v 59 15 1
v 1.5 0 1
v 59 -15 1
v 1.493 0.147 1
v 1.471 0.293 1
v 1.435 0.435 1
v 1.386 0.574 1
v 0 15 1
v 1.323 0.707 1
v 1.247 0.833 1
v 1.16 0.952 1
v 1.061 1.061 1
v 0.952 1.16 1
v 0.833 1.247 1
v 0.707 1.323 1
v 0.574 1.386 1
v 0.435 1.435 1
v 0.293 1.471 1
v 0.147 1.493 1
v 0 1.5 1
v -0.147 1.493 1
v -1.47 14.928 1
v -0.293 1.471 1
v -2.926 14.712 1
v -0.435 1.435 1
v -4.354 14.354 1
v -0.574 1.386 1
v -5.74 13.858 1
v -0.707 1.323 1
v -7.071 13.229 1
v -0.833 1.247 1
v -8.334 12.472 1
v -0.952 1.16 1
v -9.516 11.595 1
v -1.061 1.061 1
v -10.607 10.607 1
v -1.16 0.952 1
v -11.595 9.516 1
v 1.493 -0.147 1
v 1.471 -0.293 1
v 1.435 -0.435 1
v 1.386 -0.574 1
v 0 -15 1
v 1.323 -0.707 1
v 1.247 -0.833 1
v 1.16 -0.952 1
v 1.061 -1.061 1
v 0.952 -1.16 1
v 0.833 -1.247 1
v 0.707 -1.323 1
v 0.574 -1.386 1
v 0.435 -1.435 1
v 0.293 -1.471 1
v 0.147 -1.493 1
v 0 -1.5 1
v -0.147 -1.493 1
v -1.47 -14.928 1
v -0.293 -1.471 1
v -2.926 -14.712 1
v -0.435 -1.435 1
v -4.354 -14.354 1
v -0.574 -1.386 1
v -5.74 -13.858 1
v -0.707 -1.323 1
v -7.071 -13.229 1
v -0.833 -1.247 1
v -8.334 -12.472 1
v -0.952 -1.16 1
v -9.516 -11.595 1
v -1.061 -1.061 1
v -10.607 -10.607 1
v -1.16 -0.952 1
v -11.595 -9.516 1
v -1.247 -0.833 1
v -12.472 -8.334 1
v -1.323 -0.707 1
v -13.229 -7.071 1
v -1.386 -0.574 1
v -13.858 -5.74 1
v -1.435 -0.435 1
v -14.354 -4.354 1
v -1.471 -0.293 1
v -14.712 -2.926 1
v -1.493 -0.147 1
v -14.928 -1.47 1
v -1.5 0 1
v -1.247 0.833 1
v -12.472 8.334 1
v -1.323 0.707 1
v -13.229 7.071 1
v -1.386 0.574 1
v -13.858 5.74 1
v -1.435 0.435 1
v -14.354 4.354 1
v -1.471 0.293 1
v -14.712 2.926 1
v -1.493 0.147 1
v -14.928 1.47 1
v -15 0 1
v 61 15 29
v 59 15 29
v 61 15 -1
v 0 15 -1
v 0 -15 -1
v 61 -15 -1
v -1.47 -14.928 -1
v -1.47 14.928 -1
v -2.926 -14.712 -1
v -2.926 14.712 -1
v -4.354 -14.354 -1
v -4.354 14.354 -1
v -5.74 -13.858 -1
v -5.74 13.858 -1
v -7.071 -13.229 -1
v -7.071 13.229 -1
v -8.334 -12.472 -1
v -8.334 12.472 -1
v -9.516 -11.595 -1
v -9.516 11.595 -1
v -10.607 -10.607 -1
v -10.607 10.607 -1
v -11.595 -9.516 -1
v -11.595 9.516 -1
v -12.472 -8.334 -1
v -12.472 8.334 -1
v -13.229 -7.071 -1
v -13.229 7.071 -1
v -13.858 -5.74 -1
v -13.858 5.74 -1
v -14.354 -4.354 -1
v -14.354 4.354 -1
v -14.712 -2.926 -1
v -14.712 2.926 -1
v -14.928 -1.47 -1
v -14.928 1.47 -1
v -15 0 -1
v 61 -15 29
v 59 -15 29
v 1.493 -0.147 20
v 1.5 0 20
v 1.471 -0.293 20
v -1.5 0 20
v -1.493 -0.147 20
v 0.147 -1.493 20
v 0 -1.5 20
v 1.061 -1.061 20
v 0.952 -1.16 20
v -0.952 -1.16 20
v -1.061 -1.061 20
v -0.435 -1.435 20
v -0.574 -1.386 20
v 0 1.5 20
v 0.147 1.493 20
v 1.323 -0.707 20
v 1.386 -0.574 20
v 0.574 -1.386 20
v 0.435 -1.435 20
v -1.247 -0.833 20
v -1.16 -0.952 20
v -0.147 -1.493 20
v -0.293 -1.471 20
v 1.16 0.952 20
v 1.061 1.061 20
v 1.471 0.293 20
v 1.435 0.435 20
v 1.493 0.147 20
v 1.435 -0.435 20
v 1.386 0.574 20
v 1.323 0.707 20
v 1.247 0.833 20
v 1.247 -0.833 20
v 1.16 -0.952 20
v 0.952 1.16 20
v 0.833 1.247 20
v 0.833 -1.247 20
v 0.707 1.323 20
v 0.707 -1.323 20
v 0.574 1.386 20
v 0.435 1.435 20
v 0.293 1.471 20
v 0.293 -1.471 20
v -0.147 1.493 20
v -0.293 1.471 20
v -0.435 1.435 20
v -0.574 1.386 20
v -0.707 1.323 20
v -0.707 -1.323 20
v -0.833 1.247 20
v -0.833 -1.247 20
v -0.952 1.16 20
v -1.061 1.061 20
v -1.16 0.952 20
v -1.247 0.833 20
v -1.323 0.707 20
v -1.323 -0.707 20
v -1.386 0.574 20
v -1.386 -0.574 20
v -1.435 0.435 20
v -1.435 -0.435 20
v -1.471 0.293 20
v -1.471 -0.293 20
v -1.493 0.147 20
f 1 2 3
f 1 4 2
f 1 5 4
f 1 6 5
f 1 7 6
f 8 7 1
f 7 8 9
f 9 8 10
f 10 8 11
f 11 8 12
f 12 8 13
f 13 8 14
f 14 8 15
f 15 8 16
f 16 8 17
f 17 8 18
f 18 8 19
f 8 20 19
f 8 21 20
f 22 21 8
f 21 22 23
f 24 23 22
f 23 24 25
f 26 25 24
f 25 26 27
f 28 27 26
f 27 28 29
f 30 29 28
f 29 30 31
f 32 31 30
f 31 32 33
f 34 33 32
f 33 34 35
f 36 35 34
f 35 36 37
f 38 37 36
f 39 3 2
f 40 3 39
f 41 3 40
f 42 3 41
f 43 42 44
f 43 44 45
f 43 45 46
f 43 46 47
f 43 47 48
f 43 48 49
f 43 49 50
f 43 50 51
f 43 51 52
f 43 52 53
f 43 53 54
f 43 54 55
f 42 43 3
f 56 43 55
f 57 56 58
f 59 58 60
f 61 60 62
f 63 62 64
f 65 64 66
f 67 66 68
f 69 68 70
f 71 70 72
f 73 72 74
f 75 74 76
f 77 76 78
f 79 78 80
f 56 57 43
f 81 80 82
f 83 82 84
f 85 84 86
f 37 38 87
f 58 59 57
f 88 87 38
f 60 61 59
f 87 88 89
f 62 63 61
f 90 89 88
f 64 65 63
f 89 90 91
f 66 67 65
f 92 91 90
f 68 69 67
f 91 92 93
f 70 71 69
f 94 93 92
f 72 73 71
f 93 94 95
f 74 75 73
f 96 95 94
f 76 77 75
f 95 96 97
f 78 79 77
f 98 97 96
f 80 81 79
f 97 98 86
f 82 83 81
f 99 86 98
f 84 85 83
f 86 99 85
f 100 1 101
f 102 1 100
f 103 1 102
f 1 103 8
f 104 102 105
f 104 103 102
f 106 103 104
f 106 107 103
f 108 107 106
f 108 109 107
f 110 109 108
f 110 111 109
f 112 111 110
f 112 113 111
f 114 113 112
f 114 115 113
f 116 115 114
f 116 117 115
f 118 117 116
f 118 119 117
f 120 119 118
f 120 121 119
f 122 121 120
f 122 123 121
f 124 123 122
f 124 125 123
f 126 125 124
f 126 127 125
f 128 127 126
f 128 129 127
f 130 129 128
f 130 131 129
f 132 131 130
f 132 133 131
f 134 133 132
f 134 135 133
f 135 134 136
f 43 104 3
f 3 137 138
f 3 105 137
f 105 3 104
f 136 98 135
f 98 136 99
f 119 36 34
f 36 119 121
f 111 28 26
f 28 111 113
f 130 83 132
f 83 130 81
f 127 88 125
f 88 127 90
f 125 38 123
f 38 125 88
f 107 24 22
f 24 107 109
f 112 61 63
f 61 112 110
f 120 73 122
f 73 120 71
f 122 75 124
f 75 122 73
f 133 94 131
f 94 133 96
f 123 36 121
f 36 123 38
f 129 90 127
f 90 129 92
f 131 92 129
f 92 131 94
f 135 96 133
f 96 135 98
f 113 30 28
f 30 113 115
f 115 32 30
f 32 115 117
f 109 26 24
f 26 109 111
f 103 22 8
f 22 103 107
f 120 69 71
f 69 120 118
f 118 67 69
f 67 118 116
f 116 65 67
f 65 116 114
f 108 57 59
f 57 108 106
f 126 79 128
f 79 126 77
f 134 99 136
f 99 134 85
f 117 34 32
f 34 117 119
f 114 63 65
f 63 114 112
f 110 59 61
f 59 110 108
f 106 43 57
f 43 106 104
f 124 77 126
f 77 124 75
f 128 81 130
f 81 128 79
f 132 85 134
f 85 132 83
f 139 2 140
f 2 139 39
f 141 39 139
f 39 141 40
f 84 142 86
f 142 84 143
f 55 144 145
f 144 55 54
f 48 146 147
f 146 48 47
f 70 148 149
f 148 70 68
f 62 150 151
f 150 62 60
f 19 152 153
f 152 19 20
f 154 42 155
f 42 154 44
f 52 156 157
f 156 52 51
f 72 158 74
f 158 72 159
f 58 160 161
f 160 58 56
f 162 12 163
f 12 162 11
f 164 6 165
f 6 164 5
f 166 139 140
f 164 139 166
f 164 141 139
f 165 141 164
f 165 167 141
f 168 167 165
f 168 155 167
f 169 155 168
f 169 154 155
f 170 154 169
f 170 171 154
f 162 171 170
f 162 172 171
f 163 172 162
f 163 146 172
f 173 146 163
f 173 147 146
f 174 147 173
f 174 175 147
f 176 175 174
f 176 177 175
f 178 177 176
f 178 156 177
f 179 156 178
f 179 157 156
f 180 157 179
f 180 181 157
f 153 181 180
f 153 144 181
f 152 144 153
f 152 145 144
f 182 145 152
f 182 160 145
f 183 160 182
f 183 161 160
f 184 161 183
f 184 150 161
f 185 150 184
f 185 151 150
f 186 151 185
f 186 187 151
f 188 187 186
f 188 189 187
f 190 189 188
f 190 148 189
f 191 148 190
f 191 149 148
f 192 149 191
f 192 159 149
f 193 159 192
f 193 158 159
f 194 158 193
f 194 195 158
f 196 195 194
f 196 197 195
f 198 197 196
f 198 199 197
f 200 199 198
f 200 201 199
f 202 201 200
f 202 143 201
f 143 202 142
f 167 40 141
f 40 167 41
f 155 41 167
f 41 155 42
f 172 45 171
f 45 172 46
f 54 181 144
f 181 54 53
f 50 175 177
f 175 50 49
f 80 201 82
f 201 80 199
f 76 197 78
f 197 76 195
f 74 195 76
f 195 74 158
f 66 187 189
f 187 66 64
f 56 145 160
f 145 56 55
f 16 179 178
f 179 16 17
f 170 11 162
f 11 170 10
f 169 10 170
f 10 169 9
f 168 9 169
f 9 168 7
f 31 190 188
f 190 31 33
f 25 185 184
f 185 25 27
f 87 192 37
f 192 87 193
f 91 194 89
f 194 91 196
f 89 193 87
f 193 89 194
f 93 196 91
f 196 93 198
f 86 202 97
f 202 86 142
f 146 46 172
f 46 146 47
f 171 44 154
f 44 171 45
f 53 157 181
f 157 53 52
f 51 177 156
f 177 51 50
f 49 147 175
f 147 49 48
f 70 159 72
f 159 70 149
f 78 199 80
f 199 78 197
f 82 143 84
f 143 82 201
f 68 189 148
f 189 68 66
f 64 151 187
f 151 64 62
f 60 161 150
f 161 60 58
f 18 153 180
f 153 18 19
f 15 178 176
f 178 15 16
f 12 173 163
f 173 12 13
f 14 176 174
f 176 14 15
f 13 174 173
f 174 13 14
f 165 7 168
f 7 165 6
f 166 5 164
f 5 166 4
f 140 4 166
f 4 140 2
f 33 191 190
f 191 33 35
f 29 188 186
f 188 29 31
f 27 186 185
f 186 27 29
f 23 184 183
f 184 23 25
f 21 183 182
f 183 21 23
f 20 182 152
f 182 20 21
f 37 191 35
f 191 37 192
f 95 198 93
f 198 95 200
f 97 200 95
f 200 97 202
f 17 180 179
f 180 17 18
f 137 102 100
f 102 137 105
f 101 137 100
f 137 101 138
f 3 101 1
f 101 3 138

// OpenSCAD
$fn =  64;
module pole_3m(){
    rotate([90,0,0]){
cylinder(h=20,d = 3, center = true);}
translate([0,0,1]){
}
}

module triangle_holder(){
	cube([25,25,2], center = true);
		rotate([0,0,45]){
			translate([25,0,0])
			cube([50,35.3,2], center = true);

	}
}
module stand(){
translate([0,0,30/2])
rotate([0,90,0])
cube([30,30,2],center = true);	
}
module arm(){
translate([60/2,0,0])
cube([60,30,2],center = true);	
	cylinder(h = 2,d = 30, center = true);
}
arm();
translate([0,0,10])
rotate([90,0,0])
pole_3m();
translate([60,0,-1])
stand();
